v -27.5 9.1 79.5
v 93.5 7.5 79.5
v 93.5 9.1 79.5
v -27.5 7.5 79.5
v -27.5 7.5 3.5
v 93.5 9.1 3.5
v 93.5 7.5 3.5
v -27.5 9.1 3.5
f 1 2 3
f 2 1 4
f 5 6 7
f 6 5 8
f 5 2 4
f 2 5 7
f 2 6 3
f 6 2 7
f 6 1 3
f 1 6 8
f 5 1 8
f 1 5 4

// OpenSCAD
// file: D:/Projects/assembly-workshop/outputs/Screen_Pi_Hue_SCR5-H8_2026-10-31/checks/geometry.scad
// SCR5-G; mm; FRONT view: X right, Z up, Y into rack. Glass/plate front Y=0.
// Measured values: work/screen-5in/Dimensions.md. Physical fit/strength UNKNOWN.
part="plate";
DROP=0.45; // coupon winner can be substituted here; all three pins use this DROP
LIP=0.8; LIP_ON=true;
LIP_EDGES=[true,true,false,false]; // left,right,bottom,top; Brian: side lips only, cosmetic
FRAME_STEP=1.5; // measured glass-edge inset to metal LCD frame, left/right only
SHIM=0; // moves rear frame seat and plate-boss mating face back
$fn=48;
GCX=33; GCZ=41.5; PW=252; PH=88.8; PT=4;
GW=120.7; GH=77.2; CLEAR=0.2; WW=GW+2*CLEAR; WH=GH+2*CLEAR;
SEAT=13.3+SHIM; FT=3;
SO=[56.45,34]; BTN_X=[45.5,35.5,25.5];
PCB_TOP=38; GAP=0.10; LEAF_T=0.8;
HOLE=[3.4,40.3,44.7];
BX=[GCX-68,GCX+68]; BZ=[10,72];
// DSI connector X extent is unmeasured: conservative assumed 8 mm inward from PCB edge.
DSI=[GCX-60.5,9.1,GCZ-38+30,8,5.25,21];
module xz(y,d){translate([0,y+d,0])rotate([90,0,0])linear_extrude(d)children();}
// rr/rack_slots copied from SCR5-F; same exact slot centres, outline shifted -0.05 Z to centre 44.4.
module rr(w,h,r){hull()for(x=[-w/2+r,w/2-r],z=[-h/2+r,h/2-r])translate([x,z])circle(r=r);}
module rack_slots(){for(x=[-118.2625,118.2625],z=[6.323,38.127,50.773,82.577])translate([x,z])hull()for(dx=[-1.5,1.5])translate([dx,0])circle(d=7);}
module cyl_y(x,y,z,d,h){translate([x,y,z])rotate([-90,0,0])cylinder(d=d,h=h);}
module window_cut(){
  xz(-0.02,4.04)translate([GCX,GCZ])square([WW,WH],center=true);
  // 0.3 x 45-degree chamfer, square corners, front only.
  translate([GCX,0.3,GCZ])rotate([90,0,0])
    linear_extrude(height=0.3,scale=[(WW+0.6)/WW,(WH+0.6)/WH])square([WW,WH],center=true);
}
module lips(){
  // Cosmetic side ledges only; rear frame/standoffs set depth and retain the screen.
  if(LIP_ON)for(i=[0:3])if(LIP_EDGES[i]){
    if(i<2)translate([GCX+(i==0?-WW/2:WW/2-LIP),2.5,GCZ-GH/2+4])cube([LIP,0.8,GH-8]);
    else translate([GCX-GW/2+4,2.5,GCZ+(i==2?-WH/2:WH/2-LIP)])cube([GW-8,0.8,LIP]);
  }
}
// Leaf/nub/bump geometry copied from SCR5-WP-A, translated to this glass centre.
module leaves(){for(x=BTN_X)translate([GCX+x-1.5,0,GCZ]){
  translate([0,0,PCB_TOP+GAP+0.9+0.1])cube([3,11.8,LEAF_T]);
  translate([0,10.2,PCB_TOP+GAP])cube([3,1.4,1.0+LEAF_T/2]);
  translate([0,10.4,PCB_TOP+GAP+1.0+LEAF_T])cube([3,1.0,0.9]);
}}
module plate(){difference(){union(){
  difference(){xz(0,PT)translate([0,PH/2])rr(PW,PH,2.5);window_cut();}
  for(x=BX,z=BZ)cyl_y(x,3.9,z,8,SEAT-3.9);
  leaves(); lips();
 }
 xz(-0.02,4.04)rack_slots();
 for(x=BTN_X)translate([GCX+x-HOLE[0]/2,-0.02,GCZ+HOLE[1]])cube([HOLE[0],SEAT+FT+0.04,HOLE[2]-HOLE[1]]);
 // Printed-in screw pilots (no heat-set OD assumption): nominal M2.5, fit UNKNOWN.
 for(x=BX,z=BZ)cyl_y(x,SEAT-6,z,2.1,6.02);
 // Rear engraving, 0.5 deep, left field.
 xz(3.5,0.52)translate([-75,40])mirror([1,0])text("SCR5-G",size=6,halign="center",font="Liberation Sans:style=Bold");
}}
module frame_blank(){
  // C-shaped perimeter; no material across the board centre / touch FPC.
  xz(SEAT,FT)translate([GCX,GCZ])difference(){square([132,76],center=true);square([116,60],center=true);}
  for(sx=[-1,1],sz=[-1,1])cyl_y(GCX+sx*SO[0],SEAT,GCZ+sz*SO[1],9,FT);
  for(x=BX,z=BZ)hull(){cyl_y(x,SEAT,z,8,FT);cyl_y(GCX+(x<GCX?-62:62),SEAT,z,8,FT);}
}
module dsi_keepout(){translate([DSI[0]-3,DSI[1]-3,DSI[2]-3])cube([DSI[3]+6,DSI[4]+6,DSI[5]+6]);}
module ribbon_route(){
  // Open left/up corridor 18 mm wide; extends past top of plate.
  translate([GCX-84,6.1,GCZ-11])cube([18,24,65]);
  translate([GCX-84,6.1,GCZ-11])cube([32,24,27]);
}
module frame(){difference(){frame_blank();dsi_keepout();ribbon_route();
 for(sx=[-1,1],sz=[-1,1])cyl_y(GCX+sx*SO[0],SEAT-0.02,GCZ+sz*SO[1],2.8,FT+0.04);
 for(x=BX,z=BZ)cyl_y(x,SEAT-0.02,z,2.8,FT+0.04);
}}
// Pin polygon/cap/notch/dot design copied unchanged from SCR5-WP-A.
module pin(d,dots){s=2*d+0.5;difference(){union(){
 translate([-1.5,0,0])rotate([90,0,90])linear_extrude(3)polygon([
 [-s-0.02,40.5],[10.2,40.5],[10.2,41.0],[11.5,41.0],[11.5+2*d,41.0-d],[15,41.0-d],[15,44.5],[-s-0.02,44.5]]);
 translate([-2.5,-s-1.5,39.6])cube([5,1.5,5.8]);
 }for(i=[0:dots-1])translate([(i-(dots-1)/2)*1.4,-s-1.5-0.01,43.5])rotate([-90,0,0])cylinder(d=0.9,h=0.4);}}
module placed_pin(i){translate([GCX+BTN_X[i],0,GCZ])pin(DROP,i+1);}
// Measured layers: cover glass 0.9 + second glass 1.6, metal frame 3.0,
// open gap 2.0, PCB 1.6. Metal frame inset ~1.5 at LEFT/RIGHT only.
// PCB centred under glass and full metal-frame top/bottom extent remain UNKNOWN.
module glass(){translate([GCX-GW/2,0,GCZ-GH/2])cube([GW,2.5,GH]);}
module lcd(){
  translate([GCX-GW/2+FRAME_STEP,2.5,GCZ-GH/2])cube([GW-2*FRAME_STEP,3.0,GH]);
}
module pcb(){translate([GCX-60.5,7.5,GCZ-38])cube([121,1.6,76]);}
module standoffs(){for(sx=[-1,1],sz=[-1,1])difference(){cyl_y(GCX+sx*SO[0],9.1,GCZ+sz*SO[1],5.5,4.2);cyl_y(GCX+sx*SO[0],9.08,GCZ+sz*SO[1],2.5,4.24);}}
module buttons(){for(x=BTN_X){
 translate([GCX+x-3.5,9.1,GCZ+38-3.4])cube([7,3.6,2.4]);
 translate([GCX+x-1.5,9.1,GCZ+37])cube([3,3.6,1]);
}}
module dsi(){translate([DSI[0],DSI[1],DSI[2]])cube([DSI[3],DSI[4],DSI[5]]);}
module touch(){translate([GCX-10,9.1,GCZ-5])cube([20,2,10]);} // lateral extent unmeasured
module dummy(){glass();lcd();pcb();standoffs();buttons();dsi();touch();}
module assembly(){color("gray")plate();color("orange")frame();for(i=[0:2])color("cyan")placed_pin(i);color([0.2,0.3,0.4,0.4])dummy();}
// main file
include <D:/Projects/assembly-workshop/outputs/Screen_Pi_Hue_SCR5-H8_2026-10-31/checks/geometry.scad>
pcb();
